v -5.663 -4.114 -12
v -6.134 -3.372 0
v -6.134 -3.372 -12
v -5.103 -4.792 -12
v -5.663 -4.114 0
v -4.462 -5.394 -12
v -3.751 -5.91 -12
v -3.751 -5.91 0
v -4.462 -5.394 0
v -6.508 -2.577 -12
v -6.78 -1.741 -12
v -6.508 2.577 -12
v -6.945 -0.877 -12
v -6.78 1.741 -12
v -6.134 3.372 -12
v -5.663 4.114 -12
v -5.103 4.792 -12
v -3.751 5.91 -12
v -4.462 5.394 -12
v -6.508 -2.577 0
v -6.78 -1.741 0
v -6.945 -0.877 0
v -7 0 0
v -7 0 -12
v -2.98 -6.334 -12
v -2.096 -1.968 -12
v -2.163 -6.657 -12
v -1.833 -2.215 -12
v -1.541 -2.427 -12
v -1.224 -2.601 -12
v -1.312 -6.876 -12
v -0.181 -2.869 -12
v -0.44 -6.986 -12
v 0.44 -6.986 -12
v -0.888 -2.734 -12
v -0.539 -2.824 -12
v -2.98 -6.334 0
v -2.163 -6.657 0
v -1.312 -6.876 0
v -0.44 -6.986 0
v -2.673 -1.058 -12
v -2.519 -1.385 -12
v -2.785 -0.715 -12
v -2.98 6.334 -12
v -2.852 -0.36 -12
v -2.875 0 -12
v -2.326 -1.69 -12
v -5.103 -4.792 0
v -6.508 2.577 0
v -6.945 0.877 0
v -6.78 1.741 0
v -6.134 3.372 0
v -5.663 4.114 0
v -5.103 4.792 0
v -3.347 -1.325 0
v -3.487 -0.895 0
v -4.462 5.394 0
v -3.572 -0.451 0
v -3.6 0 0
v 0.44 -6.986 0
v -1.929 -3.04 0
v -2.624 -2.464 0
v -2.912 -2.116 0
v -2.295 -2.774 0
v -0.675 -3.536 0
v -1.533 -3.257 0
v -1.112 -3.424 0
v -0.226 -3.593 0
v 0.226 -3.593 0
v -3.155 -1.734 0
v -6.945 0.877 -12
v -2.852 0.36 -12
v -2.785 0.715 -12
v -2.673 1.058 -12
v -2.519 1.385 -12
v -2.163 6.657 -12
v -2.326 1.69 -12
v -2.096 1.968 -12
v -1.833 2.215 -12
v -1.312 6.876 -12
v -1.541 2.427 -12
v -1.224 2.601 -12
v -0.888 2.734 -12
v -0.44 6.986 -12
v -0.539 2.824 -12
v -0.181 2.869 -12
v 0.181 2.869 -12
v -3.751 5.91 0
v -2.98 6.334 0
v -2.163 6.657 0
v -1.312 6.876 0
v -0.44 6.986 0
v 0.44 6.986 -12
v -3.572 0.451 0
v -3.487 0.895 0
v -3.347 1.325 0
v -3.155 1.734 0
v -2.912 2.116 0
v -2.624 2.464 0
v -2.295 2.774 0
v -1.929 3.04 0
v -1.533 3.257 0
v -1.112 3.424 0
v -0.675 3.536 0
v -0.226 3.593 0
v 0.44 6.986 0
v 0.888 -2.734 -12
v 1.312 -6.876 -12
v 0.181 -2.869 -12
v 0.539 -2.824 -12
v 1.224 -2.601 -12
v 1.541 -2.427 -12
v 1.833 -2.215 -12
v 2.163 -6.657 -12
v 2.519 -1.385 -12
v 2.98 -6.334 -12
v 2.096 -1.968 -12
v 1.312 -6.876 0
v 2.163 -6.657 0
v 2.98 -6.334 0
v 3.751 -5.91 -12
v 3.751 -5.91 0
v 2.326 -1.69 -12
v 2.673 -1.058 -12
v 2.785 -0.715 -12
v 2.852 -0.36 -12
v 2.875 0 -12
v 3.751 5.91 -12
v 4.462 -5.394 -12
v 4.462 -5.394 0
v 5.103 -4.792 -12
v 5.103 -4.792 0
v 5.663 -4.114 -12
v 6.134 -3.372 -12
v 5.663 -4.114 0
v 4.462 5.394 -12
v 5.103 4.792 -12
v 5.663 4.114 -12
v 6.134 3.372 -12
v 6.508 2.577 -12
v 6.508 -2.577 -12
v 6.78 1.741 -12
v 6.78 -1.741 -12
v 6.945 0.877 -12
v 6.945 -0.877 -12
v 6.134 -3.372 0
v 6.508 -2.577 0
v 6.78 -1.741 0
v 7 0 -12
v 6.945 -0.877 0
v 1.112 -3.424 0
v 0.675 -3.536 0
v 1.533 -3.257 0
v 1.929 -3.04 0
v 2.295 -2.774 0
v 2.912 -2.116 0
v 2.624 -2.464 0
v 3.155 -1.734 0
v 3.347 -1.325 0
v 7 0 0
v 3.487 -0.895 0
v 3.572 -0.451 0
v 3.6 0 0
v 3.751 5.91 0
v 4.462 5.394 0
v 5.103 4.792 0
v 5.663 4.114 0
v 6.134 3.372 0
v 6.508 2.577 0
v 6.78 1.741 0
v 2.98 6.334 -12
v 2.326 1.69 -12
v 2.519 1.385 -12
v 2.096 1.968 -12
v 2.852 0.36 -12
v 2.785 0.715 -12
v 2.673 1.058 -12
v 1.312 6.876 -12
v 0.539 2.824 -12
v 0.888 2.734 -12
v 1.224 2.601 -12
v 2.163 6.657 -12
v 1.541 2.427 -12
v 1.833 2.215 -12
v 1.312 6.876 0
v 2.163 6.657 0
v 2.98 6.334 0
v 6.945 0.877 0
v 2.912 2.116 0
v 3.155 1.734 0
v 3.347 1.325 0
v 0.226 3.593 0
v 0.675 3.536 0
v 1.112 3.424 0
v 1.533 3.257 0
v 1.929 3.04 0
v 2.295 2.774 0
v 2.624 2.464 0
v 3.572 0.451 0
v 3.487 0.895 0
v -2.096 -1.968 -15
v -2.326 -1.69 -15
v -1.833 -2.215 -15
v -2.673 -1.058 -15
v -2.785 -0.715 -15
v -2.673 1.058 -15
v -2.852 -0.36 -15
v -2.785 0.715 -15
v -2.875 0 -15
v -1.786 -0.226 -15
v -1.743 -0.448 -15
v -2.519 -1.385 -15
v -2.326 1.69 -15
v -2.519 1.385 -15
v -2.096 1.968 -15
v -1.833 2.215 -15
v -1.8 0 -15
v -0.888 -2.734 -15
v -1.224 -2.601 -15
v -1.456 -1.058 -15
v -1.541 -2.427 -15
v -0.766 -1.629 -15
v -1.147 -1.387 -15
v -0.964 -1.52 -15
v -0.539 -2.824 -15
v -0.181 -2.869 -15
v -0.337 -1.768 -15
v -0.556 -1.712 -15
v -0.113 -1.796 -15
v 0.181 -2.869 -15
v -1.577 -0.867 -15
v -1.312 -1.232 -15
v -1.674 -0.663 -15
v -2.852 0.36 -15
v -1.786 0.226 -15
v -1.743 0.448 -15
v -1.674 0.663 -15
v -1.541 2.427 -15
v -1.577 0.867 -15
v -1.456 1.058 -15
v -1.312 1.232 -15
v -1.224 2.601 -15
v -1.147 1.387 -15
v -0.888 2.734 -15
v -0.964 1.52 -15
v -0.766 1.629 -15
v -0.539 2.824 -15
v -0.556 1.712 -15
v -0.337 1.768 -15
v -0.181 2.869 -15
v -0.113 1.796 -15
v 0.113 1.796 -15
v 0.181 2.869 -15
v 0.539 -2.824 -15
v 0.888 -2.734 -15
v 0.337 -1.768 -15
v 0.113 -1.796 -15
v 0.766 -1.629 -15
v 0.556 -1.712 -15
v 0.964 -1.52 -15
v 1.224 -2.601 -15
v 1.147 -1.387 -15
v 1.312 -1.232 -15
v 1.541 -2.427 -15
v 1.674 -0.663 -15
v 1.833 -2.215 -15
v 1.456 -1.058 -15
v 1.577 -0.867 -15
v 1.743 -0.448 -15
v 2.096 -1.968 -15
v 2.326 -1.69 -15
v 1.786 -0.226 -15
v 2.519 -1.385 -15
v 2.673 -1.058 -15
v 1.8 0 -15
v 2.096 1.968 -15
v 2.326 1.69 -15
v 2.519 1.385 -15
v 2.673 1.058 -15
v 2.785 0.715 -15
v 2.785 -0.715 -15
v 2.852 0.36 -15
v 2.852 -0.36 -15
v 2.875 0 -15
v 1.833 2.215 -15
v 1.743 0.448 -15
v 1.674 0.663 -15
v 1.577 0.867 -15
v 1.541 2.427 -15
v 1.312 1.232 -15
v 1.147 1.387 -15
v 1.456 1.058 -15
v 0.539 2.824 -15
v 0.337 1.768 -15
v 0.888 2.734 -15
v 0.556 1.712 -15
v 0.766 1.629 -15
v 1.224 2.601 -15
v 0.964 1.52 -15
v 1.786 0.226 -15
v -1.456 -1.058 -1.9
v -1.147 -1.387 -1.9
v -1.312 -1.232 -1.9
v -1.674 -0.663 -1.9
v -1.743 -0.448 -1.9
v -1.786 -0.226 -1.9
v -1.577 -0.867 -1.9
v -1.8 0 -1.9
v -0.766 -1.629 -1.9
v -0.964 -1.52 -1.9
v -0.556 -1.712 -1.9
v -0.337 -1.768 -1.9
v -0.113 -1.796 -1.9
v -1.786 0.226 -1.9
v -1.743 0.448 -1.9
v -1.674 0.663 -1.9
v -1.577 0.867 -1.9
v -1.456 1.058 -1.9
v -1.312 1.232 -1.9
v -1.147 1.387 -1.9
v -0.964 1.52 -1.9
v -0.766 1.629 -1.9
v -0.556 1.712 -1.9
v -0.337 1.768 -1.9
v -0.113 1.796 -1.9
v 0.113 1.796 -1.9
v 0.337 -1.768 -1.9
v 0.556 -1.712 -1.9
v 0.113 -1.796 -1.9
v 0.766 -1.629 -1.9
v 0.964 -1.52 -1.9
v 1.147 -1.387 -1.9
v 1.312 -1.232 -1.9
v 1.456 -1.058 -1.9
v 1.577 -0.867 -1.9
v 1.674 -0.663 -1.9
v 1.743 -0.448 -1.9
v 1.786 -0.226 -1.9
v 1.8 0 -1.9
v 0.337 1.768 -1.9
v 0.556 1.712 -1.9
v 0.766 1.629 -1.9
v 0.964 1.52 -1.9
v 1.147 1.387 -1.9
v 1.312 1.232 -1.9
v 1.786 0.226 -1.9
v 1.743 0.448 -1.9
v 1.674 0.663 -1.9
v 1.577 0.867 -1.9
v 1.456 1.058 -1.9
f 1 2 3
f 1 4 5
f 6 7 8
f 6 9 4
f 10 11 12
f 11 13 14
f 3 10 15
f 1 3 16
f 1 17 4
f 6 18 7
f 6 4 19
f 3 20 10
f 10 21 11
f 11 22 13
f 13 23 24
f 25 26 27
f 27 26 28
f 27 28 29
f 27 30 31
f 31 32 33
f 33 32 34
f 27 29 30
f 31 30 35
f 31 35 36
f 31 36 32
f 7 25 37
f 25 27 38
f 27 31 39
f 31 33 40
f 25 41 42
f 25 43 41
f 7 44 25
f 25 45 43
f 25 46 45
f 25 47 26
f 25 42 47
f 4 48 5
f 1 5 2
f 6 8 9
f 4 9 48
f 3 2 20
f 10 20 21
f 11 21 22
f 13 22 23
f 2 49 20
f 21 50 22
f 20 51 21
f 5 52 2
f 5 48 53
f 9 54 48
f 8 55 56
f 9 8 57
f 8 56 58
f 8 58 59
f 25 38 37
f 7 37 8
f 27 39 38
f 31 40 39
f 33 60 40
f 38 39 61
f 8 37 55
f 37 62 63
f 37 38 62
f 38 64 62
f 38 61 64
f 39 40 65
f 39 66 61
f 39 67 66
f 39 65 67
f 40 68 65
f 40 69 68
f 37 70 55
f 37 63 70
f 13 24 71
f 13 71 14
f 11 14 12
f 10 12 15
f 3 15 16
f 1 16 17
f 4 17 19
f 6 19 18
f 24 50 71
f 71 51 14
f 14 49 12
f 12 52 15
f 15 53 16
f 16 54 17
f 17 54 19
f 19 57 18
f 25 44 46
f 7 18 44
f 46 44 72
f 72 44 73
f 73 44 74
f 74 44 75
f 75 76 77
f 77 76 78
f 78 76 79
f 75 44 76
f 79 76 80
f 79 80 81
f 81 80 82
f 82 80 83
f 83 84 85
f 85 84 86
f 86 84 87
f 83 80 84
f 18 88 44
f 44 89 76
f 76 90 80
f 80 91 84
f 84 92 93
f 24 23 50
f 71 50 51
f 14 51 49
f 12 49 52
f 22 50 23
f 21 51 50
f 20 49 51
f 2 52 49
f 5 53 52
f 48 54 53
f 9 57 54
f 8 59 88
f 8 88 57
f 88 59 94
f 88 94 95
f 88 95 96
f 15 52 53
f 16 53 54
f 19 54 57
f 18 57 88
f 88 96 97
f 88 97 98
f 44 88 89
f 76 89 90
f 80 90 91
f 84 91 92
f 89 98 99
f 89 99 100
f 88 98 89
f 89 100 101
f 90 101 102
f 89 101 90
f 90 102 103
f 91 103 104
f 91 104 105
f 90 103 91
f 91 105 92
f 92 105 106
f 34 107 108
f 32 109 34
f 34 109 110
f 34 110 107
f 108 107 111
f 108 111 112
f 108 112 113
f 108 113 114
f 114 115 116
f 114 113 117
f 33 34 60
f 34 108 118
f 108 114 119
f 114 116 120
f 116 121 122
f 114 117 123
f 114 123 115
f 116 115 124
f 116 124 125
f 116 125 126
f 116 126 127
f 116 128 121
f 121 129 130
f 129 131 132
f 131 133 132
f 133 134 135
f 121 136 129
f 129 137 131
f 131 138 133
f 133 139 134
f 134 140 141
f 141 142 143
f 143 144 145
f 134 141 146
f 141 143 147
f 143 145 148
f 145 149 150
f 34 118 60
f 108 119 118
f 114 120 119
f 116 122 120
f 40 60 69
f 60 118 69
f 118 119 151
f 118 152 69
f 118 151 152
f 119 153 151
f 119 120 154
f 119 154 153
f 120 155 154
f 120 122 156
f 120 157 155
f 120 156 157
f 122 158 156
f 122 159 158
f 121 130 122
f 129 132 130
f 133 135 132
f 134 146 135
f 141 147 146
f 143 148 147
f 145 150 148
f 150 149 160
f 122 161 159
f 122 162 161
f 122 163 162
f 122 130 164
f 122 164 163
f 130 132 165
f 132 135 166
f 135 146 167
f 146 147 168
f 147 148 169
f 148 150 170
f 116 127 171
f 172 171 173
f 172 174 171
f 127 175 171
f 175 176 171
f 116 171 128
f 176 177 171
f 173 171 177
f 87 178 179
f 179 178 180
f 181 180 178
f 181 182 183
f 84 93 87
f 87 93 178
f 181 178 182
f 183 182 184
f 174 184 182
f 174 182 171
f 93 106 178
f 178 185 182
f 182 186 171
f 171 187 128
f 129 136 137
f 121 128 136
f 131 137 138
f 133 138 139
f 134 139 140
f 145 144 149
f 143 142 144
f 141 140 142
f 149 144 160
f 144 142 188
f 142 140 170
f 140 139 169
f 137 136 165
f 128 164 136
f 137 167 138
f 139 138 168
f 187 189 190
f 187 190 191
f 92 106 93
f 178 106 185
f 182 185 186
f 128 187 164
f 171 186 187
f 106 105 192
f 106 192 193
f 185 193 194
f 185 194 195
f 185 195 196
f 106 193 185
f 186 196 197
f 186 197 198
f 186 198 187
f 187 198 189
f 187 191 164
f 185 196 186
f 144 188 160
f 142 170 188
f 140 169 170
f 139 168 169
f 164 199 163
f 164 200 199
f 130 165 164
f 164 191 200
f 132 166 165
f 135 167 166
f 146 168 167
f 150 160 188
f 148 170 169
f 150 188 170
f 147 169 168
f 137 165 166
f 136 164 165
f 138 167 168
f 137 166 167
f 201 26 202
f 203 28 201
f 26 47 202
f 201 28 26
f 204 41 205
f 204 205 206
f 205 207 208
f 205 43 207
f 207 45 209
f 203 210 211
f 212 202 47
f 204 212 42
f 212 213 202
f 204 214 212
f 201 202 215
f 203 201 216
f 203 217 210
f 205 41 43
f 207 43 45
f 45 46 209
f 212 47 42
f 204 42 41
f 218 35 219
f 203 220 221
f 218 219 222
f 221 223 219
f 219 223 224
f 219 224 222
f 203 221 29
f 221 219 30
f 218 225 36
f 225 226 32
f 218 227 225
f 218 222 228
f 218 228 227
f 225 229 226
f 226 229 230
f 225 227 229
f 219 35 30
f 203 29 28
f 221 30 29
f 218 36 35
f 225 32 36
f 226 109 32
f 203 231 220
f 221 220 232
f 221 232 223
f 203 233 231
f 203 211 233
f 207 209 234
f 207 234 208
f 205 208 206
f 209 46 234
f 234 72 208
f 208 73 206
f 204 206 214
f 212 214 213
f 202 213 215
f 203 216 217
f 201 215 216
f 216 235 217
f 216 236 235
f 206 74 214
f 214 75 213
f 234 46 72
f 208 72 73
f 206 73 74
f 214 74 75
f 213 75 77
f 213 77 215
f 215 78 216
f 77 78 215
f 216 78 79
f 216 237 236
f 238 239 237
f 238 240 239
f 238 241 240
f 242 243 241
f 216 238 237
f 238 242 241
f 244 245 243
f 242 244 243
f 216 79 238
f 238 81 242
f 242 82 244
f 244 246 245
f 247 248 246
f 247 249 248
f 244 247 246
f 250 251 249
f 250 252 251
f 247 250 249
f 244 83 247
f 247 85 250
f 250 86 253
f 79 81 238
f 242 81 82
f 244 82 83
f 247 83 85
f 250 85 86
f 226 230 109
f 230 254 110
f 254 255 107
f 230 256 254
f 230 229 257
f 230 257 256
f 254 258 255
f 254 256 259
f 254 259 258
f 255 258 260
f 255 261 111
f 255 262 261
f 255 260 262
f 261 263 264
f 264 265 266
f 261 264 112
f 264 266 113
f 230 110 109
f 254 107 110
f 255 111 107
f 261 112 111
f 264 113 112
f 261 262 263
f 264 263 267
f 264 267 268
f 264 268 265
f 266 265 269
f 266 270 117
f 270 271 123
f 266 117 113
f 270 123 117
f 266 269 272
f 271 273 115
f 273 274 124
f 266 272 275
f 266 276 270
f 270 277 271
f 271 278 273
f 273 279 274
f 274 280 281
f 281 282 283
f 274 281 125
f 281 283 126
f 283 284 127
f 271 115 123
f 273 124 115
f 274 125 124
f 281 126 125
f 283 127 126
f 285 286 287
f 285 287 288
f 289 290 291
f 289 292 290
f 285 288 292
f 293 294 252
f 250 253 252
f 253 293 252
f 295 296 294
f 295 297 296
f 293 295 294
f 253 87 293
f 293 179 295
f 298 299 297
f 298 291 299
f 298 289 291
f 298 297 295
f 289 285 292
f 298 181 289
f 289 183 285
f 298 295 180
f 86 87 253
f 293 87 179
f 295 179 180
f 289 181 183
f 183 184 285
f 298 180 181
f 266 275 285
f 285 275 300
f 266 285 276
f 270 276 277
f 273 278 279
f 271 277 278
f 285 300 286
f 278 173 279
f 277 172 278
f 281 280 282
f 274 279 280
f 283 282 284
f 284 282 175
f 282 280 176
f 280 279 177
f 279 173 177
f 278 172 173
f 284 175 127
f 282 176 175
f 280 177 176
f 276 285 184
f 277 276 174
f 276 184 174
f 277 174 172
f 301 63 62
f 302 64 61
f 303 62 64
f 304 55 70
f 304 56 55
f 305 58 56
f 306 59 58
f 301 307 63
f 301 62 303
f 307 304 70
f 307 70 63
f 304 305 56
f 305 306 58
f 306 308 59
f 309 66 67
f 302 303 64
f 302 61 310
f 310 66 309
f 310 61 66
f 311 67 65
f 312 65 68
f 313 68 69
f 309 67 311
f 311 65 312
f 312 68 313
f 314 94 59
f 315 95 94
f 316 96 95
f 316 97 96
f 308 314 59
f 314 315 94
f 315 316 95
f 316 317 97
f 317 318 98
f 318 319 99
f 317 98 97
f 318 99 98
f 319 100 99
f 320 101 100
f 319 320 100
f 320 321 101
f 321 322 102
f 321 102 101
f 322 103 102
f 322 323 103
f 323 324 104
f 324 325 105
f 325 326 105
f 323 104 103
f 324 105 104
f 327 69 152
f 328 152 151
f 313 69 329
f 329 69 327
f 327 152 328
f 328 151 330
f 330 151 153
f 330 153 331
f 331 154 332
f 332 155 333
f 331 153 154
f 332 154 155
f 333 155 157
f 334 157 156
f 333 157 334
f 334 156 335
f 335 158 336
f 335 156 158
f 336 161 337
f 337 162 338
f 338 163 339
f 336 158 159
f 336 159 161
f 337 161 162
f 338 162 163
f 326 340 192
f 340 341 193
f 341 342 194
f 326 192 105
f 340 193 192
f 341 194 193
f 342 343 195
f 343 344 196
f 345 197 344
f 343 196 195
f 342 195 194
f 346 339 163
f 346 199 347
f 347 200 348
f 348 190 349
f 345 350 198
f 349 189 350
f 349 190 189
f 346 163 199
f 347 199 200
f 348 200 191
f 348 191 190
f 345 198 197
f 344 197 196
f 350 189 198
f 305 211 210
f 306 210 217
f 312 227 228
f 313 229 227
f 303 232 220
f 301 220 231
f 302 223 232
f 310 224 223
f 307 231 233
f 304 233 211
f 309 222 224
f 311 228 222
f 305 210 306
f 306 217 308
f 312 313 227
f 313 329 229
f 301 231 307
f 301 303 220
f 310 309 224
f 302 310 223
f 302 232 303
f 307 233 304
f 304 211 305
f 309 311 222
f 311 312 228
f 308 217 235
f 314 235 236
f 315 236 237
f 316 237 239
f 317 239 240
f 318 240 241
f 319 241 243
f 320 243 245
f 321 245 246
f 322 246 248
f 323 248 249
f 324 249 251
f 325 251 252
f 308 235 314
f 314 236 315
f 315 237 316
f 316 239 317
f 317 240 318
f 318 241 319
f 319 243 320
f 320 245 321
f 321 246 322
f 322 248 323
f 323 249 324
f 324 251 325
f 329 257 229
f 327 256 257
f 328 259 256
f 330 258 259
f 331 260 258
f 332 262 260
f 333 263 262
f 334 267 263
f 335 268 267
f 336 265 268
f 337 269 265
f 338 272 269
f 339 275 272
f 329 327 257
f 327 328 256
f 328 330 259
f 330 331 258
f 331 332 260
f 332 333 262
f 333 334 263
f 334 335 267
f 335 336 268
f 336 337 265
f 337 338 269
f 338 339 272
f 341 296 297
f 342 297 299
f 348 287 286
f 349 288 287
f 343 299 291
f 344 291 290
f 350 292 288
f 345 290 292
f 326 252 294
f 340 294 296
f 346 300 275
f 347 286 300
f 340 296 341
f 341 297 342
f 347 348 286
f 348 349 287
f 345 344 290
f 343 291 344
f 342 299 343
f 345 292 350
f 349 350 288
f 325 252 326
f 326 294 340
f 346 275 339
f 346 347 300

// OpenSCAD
$fn = 50;


difference() {
	union() {
		translate(v = [0, 0, -12.0000000000]) {
			cylinder(h = 12, r = 7.0000000000);
		}
		#translate(v = [0, 0, -15.0000000000]) {
			cylinder(h = 15, r = 2.8750000000);
		}
	}
	union() {
		translate(v = [0, 0, 0]) {
			rotate(a = [0, 0, 0]) {
				difference() {
					union() {
						translate(v = [0, 0, -15.0000000000]) {
							cylinder(h = 15, r = 1.5000000000);
						}
						translate(v = [0, 0, -1.9000000000]) {
							cylinder(h = 1.9000000000, r1 = 1.8000000000, r2 = 3.6000000000);
						}
						translate(v = [0, 0, -15.0000000000]) {
							cylinder(h = 15, r = 1.8000000000);
						}
						translate(v = [0, 0, -15.0000000000]) {
							cylinder(h = 15, r = 1.5000000000);
						}
					}
					union();
				}
			}
		}
	}
}
